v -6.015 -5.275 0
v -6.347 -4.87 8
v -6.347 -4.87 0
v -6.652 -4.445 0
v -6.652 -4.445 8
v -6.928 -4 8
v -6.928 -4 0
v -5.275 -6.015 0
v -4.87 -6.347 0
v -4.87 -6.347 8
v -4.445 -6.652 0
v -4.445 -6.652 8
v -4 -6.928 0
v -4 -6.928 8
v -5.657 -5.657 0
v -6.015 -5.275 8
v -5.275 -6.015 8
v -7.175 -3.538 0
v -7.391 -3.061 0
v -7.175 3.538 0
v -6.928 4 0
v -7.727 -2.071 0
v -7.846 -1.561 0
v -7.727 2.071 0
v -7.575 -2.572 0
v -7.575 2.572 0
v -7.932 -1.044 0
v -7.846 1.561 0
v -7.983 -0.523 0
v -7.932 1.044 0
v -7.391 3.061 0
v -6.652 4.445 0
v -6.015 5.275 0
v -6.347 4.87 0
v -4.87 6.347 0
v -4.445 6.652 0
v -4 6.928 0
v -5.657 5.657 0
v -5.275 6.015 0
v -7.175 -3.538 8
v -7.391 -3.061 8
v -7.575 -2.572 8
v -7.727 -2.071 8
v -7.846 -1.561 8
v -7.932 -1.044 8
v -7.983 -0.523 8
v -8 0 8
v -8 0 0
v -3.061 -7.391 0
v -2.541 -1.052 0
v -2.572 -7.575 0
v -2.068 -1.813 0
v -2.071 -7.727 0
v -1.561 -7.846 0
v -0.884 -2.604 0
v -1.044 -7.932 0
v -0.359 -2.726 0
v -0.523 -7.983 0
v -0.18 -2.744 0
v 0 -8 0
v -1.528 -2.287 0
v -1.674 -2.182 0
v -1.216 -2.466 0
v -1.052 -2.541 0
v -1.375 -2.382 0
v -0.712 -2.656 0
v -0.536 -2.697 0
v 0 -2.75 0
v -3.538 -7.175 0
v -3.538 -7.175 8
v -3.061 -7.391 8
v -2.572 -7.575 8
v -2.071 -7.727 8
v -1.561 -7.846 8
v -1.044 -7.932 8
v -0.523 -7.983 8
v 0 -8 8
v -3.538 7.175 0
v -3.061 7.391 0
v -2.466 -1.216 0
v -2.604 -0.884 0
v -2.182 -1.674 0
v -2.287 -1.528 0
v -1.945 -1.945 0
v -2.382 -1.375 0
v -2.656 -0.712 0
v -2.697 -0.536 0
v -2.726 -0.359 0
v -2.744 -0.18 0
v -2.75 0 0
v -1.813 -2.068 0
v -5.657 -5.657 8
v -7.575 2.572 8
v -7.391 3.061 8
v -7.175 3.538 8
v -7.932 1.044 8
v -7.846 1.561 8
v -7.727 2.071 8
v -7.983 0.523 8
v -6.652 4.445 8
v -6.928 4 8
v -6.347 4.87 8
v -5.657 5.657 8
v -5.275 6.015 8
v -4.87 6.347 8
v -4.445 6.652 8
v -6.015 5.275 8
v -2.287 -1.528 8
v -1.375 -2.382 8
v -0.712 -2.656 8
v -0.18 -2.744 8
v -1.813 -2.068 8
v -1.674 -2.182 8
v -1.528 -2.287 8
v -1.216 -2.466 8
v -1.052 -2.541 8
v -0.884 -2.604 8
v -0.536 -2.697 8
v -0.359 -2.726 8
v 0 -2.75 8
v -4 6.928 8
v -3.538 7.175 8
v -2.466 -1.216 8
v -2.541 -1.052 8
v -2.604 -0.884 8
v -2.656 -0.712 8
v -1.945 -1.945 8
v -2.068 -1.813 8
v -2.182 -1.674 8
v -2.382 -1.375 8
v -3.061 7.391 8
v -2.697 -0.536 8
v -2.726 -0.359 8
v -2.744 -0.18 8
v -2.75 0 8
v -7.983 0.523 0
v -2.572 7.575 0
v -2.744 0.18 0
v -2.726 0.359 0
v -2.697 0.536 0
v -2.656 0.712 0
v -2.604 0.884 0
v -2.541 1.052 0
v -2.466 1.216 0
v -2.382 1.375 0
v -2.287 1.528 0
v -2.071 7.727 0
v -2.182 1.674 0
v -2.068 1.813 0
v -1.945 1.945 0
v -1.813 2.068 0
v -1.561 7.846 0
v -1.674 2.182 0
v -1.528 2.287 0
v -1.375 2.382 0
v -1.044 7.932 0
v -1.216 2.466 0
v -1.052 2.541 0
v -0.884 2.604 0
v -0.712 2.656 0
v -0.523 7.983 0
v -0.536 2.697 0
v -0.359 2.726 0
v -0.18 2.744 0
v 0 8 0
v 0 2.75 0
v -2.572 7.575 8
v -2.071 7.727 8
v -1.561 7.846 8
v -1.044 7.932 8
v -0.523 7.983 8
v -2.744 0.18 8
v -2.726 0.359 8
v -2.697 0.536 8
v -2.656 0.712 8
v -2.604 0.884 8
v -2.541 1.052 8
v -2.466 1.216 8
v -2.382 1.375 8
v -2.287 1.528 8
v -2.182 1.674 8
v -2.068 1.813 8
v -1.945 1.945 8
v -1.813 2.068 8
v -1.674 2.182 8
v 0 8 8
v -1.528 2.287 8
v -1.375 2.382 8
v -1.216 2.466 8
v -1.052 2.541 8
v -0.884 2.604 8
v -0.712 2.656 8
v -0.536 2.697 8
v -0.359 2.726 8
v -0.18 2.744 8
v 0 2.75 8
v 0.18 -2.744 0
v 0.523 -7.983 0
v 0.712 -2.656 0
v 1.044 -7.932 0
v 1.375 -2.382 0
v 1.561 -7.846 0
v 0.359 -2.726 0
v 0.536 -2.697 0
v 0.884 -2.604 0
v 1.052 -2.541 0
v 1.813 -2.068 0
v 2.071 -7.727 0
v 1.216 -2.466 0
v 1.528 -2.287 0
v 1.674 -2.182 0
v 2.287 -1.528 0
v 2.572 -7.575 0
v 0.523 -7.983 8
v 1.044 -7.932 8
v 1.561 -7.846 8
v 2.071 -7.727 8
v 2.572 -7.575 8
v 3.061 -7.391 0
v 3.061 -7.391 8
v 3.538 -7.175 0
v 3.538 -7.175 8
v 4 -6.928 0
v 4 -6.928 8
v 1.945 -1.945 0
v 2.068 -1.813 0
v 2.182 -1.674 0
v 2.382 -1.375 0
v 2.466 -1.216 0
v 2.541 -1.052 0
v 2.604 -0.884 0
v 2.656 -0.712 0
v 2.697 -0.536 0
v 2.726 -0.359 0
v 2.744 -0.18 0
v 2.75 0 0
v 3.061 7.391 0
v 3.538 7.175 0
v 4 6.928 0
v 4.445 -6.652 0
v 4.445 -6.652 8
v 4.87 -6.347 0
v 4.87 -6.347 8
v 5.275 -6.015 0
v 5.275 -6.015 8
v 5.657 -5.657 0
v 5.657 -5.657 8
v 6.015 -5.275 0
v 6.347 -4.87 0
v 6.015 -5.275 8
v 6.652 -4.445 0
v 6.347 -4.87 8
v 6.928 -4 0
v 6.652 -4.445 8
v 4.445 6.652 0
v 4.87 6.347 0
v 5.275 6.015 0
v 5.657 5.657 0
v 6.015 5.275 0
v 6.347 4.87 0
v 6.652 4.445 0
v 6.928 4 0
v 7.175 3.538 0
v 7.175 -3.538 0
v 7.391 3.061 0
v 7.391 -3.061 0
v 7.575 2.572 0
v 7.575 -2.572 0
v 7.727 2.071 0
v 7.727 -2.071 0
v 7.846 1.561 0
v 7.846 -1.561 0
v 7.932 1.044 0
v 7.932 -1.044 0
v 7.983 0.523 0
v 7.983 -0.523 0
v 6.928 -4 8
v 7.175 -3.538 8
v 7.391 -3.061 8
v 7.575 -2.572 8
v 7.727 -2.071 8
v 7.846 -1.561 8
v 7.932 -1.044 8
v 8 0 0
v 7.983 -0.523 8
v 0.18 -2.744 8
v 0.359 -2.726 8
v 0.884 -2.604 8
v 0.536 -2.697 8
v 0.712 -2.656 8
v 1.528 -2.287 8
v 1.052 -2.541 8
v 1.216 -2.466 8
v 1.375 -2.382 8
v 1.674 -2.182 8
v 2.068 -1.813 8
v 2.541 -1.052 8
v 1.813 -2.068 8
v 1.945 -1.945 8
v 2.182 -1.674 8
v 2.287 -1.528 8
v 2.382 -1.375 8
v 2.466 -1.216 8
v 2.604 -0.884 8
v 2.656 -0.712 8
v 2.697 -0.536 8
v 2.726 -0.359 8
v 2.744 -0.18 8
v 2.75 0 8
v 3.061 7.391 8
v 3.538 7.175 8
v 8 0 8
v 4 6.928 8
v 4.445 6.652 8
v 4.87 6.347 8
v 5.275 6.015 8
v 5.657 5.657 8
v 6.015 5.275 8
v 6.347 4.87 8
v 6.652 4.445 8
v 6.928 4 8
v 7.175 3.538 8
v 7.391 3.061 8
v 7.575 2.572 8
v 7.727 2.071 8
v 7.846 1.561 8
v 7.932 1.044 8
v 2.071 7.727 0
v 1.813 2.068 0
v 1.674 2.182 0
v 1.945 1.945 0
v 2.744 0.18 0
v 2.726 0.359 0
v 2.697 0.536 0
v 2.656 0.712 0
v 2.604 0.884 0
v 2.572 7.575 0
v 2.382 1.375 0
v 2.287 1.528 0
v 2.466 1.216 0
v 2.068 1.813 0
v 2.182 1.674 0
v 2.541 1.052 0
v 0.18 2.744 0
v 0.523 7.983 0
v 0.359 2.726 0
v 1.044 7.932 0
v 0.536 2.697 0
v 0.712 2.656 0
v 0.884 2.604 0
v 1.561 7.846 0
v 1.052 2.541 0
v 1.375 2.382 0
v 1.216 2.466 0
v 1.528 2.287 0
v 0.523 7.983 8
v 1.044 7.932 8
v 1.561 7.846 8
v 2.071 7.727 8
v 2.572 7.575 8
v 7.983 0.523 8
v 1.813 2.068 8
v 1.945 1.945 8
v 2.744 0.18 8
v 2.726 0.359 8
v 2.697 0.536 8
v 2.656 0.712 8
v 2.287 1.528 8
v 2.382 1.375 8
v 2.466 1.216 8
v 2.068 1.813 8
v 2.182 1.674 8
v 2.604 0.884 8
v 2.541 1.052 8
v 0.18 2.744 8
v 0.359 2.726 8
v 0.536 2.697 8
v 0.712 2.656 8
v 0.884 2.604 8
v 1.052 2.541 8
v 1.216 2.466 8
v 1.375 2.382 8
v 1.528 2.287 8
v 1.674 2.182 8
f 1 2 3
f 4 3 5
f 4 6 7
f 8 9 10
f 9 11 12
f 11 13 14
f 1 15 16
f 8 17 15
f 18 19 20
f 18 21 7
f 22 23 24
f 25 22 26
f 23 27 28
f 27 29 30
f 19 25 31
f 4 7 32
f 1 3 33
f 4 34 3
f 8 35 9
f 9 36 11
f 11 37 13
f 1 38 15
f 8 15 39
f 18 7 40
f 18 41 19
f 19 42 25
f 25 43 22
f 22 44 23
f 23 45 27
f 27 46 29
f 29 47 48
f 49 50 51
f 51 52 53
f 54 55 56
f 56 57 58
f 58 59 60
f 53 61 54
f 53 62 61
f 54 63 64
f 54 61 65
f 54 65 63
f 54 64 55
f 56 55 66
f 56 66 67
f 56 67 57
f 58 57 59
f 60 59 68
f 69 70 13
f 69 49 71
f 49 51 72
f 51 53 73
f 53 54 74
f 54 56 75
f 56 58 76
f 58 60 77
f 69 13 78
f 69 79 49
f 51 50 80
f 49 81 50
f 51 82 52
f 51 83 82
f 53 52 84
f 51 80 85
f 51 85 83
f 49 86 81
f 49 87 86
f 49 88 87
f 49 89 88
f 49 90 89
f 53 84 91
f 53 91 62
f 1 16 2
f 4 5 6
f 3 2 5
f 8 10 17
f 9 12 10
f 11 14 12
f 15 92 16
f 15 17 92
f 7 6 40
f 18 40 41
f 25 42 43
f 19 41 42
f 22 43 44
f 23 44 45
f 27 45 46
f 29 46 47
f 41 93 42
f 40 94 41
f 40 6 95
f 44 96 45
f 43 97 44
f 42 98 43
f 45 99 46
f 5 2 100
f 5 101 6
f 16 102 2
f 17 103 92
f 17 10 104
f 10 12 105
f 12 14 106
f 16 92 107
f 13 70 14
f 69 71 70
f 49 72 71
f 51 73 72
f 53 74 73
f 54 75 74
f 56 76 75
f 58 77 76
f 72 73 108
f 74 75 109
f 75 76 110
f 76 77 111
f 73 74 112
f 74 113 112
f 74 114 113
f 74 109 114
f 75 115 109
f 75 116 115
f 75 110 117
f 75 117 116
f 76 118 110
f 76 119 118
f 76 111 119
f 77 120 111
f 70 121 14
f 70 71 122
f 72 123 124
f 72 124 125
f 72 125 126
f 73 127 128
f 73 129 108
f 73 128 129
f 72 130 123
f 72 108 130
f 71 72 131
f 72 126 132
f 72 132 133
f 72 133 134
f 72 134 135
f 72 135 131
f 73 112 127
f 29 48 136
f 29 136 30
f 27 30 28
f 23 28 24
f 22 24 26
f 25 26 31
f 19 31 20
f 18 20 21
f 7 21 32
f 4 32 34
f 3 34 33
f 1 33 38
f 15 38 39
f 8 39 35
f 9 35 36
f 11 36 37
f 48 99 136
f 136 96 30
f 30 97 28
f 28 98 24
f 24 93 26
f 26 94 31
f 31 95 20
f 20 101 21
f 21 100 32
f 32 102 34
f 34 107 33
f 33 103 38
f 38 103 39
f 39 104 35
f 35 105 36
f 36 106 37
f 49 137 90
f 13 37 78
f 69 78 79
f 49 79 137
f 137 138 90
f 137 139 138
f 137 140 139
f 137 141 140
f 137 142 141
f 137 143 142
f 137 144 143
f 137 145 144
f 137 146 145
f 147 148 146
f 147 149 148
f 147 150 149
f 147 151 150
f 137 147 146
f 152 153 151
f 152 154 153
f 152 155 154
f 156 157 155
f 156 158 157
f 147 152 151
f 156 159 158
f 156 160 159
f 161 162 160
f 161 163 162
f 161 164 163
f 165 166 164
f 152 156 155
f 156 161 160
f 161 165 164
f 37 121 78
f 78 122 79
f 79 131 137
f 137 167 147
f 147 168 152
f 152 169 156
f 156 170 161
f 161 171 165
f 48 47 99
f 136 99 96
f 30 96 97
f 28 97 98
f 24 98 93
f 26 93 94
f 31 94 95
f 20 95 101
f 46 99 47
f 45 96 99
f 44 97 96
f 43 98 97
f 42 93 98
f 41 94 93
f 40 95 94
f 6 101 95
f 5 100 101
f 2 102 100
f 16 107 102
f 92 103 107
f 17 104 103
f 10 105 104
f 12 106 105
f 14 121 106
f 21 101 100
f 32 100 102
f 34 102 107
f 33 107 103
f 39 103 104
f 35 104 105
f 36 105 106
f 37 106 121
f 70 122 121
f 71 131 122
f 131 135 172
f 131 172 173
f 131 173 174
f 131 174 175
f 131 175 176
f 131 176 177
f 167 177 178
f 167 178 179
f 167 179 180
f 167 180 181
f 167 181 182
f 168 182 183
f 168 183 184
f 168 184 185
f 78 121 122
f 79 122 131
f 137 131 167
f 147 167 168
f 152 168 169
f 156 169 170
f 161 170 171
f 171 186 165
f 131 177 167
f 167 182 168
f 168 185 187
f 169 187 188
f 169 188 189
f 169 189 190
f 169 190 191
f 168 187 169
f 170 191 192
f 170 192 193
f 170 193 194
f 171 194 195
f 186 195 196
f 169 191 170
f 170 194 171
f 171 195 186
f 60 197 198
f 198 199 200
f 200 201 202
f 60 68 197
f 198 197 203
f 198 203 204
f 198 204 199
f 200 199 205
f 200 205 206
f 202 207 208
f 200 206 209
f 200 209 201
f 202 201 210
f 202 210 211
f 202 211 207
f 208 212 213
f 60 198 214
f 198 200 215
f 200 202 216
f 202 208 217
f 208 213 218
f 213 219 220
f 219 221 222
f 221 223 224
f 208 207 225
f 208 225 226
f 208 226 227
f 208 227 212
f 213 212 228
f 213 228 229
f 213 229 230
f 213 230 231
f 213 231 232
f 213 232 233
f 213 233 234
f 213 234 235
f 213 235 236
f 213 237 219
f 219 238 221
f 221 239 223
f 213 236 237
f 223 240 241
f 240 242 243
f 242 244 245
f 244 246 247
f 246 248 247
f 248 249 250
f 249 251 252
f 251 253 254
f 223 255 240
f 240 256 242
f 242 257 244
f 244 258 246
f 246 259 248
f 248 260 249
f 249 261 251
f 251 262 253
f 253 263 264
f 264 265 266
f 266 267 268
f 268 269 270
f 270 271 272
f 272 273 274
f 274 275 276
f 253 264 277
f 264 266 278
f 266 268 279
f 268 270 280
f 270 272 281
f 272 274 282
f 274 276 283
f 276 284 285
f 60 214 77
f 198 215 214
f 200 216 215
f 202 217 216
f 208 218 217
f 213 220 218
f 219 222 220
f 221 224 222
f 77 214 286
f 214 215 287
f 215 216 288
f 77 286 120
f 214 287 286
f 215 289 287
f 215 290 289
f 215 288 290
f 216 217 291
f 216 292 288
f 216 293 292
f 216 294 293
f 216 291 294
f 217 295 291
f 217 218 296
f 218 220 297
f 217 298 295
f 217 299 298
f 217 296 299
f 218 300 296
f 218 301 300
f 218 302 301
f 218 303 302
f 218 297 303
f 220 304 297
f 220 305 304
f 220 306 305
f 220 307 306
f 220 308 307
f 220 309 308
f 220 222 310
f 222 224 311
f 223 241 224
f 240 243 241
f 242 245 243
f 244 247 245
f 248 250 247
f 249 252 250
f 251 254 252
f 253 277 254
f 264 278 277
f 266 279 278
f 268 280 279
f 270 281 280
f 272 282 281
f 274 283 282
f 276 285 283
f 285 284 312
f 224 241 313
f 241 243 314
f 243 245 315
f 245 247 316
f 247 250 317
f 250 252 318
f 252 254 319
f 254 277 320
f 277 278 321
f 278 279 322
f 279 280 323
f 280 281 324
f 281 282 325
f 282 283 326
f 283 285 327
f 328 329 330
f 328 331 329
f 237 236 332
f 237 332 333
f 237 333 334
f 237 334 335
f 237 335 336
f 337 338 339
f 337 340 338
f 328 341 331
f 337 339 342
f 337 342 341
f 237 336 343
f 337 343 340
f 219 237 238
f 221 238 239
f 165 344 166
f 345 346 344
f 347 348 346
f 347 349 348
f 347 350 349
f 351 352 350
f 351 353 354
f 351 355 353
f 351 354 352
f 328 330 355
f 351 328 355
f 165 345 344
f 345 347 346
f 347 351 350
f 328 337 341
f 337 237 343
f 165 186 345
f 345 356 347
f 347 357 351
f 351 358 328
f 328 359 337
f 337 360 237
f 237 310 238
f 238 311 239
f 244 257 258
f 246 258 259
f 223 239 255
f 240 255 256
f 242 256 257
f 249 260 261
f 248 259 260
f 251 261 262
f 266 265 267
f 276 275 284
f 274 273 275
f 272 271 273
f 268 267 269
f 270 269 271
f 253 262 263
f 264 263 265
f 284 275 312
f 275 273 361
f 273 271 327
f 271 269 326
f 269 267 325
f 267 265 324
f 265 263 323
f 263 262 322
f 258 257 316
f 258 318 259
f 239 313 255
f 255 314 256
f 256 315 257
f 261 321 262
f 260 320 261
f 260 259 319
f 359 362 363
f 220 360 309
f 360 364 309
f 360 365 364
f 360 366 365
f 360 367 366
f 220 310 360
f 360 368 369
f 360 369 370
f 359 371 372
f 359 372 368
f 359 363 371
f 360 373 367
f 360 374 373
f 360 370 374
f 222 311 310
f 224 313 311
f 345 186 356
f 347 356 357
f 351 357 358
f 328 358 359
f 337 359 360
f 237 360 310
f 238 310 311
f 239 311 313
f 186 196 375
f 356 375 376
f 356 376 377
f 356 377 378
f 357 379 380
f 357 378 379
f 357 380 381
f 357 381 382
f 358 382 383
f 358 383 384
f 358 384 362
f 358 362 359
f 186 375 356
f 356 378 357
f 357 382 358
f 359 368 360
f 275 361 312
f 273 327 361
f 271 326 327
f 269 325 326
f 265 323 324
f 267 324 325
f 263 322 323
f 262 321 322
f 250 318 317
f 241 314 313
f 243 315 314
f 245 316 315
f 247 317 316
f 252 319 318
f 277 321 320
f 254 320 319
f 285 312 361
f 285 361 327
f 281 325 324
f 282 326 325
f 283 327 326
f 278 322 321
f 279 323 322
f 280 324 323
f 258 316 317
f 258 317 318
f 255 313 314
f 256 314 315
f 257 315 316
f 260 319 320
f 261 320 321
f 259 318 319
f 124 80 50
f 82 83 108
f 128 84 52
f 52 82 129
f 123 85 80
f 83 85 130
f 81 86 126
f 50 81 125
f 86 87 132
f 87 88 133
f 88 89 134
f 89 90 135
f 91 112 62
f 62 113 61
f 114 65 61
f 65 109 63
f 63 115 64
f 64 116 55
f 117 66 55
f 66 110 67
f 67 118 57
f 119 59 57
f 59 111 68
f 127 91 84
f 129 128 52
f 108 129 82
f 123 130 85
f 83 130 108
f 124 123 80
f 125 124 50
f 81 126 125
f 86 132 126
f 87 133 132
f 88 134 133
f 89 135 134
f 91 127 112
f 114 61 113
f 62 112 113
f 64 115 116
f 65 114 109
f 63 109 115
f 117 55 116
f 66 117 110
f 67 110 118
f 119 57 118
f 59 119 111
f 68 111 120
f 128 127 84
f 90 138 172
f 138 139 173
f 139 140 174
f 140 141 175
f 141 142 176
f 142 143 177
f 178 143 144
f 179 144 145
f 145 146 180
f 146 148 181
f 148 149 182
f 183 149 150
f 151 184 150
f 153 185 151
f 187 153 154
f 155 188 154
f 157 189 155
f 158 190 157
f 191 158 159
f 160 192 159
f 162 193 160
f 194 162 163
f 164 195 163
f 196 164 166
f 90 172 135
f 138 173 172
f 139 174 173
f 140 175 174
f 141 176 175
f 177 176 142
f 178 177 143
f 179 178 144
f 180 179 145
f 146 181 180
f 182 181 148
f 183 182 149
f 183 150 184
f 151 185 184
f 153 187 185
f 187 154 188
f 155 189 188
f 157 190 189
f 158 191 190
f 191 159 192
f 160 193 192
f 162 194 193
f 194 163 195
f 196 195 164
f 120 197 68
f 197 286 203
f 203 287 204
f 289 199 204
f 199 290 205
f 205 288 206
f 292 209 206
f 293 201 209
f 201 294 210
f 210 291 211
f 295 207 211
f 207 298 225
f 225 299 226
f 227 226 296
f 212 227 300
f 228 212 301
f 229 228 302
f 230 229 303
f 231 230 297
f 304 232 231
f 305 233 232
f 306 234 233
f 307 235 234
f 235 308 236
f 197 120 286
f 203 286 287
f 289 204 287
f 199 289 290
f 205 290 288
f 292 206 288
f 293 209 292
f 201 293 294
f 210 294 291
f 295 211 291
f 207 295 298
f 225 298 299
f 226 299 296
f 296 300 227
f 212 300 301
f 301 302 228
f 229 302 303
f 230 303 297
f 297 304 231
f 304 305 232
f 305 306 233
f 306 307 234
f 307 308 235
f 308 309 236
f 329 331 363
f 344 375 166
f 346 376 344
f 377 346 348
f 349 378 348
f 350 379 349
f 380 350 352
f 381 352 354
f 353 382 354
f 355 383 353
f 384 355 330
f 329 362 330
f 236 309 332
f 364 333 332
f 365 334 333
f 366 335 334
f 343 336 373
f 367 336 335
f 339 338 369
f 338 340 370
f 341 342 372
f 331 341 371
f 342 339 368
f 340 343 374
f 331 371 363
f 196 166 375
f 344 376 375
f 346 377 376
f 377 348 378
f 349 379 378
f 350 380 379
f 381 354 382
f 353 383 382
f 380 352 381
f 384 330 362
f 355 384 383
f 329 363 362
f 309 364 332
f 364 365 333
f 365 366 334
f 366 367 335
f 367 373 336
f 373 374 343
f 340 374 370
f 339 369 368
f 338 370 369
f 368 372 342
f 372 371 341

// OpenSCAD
// Optional test print. Bearing seats left to right: radial allowance 0, 0.10, 0.20 mm.
$fn=96;
difference() {
	union() {
		cylinder(h = 8, r = 8);
	}
	union() {
		translate(v = [0, 0, -0.01]) {
			cylinder(h = 8.02, r = 2.75);
		}
	}
}
